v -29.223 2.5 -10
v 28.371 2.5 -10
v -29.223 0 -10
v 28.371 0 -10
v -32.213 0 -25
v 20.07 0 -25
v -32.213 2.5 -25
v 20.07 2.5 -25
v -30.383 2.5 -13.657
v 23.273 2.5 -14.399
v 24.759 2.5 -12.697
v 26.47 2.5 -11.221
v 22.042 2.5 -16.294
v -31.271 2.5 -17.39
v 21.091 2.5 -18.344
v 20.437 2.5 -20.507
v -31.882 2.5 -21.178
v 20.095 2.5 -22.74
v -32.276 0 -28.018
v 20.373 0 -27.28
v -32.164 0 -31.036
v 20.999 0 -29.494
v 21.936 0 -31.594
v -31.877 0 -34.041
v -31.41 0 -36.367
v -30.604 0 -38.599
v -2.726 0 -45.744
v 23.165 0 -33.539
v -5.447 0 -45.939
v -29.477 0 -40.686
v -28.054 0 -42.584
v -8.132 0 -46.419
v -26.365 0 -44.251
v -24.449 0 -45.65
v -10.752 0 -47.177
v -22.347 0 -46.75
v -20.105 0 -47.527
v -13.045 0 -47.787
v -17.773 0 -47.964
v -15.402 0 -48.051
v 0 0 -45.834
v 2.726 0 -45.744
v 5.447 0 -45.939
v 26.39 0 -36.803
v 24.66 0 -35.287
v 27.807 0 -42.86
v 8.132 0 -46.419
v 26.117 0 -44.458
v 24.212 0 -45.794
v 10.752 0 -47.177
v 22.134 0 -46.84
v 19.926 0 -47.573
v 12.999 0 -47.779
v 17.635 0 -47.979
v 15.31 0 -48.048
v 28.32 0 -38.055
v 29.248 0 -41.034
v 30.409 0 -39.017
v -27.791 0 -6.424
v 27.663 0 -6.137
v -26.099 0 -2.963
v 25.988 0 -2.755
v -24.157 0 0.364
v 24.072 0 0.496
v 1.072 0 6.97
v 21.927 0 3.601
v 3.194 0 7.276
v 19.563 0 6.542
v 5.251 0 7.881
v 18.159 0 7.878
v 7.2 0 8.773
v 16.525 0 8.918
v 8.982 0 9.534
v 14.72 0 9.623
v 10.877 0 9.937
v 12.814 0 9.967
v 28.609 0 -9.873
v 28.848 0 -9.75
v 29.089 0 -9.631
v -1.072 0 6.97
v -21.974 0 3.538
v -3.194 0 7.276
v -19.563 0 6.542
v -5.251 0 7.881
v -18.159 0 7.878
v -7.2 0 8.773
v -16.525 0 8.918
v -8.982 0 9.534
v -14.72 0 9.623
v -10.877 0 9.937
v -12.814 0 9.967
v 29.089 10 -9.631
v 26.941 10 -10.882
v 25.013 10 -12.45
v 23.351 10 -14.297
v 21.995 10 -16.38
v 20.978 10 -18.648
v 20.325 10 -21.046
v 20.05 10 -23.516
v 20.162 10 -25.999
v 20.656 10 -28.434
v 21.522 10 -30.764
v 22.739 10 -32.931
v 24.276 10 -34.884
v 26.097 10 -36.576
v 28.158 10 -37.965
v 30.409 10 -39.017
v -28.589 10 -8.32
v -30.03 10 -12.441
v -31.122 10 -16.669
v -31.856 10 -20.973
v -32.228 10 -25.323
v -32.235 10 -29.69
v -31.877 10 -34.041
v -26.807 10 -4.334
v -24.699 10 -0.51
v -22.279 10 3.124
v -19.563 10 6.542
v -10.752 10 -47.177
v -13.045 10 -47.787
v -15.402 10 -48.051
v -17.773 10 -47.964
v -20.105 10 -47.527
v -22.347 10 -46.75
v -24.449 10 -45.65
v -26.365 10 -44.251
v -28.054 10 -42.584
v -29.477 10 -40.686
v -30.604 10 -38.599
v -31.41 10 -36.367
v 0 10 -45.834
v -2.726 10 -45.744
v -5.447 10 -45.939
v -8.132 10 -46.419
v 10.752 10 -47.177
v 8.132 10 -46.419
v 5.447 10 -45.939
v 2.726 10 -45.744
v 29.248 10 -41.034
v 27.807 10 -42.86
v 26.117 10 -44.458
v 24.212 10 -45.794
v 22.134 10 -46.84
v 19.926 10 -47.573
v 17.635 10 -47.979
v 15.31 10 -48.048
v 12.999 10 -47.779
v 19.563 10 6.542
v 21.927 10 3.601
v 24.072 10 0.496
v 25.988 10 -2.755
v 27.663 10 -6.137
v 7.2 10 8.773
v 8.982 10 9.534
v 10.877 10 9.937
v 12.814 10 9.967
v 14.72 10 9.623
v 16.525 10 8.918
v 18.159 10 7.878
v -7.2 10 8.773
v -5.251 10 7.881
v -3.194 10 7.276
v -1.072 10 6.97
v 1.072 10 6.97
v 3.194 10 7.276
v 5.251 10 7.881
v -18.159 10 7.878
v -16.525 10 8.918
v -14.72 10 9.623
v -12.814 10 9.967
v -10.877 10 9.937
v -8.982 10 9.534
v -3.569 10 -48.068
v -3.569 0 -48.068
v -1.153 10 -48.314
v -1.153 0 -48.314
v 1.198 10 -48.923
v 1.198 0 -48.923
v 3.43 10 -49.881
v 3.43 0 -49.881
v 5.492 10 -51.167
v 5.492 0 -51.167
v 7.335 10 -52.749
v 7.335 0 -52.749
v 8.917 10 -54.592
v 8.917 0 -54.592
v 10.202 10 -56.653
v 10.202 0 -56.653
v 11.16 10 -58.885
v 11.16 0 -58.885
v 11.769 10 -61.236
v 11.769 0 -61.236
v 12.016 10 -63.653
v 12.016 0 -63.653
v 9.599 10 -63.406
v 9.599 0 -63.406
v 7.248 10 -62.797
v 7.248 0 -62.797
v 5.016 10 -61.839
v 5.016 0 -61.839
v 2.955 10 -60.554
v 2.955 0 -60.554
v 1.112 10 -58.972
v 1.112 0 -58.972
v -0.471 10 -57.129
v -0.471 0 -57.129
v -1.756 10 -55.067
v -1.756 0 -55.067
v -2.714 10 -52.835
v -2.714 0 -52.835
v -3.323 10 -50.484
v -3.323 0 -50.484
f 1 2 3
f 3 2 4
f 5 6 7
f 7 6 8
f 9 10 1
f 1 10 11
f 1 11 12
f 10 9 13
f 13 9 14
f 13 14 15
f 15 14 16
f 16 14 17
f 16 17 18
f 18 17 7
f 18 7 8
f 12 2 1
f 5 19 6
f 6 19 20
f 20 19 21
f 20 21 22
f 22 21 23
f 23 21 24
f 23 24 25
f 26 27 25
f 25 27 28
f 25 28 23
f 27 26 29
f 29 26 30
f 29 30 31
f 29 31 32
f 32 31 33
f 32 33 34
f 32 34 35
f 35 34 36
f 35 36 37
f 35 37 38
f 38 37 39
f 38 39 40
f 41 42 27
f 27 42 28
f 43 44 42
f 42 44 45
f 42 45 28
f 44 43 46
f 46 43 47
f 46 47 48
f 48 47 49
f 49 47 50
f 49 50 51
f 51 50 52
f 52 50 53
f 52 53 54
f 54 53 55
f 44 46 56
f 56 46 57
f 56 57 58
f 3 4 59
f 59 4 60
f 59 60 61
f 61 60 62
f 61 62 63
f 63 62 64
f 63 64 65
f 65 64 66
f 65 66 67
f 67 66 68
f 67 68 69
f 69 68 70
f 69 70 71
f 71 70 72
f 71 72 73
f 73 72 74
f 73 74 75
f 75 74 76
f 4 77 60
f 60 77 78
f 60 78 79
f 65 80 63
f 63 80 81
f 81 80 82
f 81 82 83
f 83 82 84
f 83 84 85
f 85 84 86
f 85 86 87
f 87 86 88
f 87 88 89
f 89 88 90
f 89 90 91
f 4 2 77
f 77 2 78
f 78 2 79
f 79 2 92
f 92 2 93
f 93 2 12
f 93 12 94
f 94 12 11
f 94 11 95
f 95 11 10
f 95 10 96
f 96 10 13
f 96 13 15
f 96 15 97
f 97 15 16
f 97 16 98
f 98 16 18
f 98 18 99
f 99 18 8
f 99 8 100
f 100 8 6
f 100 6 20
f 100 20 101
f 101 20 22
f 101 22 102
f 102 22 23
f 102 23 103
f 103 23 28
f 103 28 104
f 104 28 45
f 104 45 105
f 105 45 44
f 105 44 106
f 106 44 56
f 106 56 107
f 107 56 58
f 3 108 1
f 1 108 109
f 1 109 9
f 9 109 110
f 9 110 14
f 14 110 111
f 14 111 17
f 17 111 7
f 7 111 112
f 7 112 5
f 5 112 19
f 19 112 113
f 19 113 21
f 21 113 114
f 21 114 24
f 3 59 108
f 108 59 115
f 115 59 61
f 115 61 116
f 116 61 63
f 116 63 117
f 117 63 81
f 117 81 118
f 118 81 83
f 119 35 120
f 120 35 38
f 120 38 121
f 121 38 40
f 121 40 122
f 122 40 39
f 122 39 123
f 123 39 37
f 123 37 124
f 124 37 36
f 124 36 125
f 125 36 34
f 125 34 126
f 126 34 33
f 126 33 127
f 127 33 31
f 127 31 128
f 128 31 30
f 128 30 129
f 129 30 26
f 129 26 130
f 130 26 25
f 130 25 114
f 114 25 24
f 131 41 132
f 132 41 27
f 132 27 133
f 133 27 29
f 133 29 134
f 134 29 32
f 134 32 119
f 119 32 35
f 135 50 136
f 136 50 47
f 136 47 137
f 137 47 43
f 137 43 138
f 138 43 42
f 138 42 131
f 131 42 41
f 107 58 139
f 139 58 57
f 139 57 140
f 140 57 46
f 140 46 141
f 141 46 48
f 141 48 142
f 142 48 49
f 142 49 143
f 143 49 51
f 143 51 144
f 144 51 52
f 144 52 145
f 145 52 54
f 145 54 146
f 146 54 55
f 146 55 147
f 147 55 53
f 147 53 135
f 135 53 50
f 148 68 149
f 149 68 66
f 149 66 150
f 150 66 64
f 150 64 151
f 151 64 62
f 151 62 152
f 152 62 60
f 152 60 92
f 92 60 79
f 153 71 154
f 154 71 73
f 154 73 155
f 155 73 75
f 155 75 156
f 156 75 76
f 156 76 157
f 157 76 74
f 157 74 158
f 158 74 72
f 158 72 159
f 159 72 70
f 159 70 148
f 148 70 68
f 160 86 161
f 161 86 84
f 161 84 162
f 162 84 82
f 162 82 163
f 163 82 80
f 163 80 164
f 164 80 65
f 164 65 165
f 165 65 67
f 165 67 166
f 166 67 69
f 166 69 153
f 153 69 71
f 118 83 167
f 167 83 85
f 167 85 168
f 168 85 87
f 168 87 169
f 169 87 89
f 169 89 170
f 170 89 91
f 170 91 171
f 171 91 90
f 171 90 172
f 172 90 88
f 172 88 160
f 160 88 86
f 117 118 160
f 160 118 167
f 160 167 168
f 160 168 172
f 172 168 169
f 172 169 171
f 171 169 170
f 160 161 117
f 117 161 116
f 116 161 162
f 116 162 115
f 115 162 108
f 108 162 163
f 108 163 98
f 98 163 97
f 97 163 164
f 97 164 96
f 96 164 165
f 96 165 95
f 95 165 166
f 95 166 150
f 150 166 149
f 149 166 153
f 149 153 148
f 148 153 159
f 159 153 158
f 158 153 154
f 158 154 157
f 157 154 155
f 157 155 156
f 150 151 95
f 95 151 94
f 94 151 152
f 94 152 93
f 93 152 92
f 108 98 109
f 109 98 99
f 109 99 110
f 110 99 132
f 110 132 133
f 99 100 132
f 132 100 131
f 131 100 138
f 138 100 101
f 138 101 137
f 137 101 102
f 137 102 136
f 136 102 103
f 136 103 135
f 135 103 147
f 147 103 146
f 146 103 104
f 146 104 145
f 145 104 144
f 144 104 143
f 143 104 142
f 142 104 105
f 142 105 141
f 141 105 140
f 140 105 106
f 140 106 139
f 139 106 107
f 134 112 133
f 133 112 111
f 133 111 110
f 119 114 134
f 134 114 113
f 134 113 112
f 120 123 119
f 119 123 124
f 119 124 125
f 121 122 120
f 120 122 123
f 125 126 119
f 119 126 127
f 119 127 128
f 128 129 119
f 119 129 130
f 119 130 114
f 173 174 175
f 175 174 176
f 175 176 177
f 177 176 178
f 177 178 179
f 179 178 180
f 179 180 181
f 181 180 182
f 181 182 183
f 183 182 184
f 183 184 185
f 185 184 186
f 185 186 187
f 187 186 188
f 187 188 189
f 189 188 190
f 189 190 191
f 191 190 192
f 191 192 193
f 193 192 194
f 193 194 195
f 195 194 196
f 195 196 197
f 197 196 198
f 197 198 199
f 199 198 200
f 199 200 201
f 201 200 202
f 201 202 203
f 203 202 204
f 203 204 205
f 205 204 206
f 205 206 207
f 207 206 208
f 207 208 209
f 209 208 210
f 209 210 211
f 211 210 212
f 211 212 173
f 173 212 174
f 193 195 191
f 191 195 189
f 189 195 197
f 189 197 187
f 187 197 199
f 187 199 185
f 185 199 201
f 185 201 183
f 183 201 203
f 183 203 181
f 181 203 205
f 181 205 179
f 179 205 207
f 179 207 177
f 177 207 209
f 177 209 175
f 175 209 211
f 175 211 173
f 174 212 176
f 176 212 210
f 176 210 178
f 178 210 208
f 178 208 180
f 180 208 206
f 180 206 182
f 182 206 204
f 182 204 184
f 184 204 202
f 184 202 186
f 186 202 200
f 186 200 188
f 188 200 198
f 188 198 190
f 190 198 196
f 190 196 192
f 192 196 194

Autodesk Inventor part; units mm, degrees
ref_plane "YZ Plane" through (0, 0, 0) normal (1, 0, 0) x (0, 1, 0)
ref_plane "XZ Plane" through (0, 0, 0) normal (0, 1, 0) x (-1, 0, 0)
ref_plane "XY Plane" through (0, 0, 0) normal (0, 0, 1) x (1, 0, 0)
sketch "Sketch2" plane through (0, 0, 0) normal (0, 1, 0) x (-1, 0, 0)
  line L0 (0, 0) -> (-15.380673, 0) construction
  line L1 (0, 12) -> (0, -86.646063) construction
  circle A0 centre (0, 0) radius 2
  circle A1 centre (-12, 0) radius 10
  circle A2 centre (-23.313708, -11.313708) radius 6
  circle A3 centre (-16, -32.062435) radius 16
  line L2 (-16, -48.062435) -> (0, -48.062435)
  line L3 (-12, 10) -> (0, 10)
  line L4 (-12, 0) -> (-23.313708, -11.313708)
  arc A4 (-19.562803, 6.542477) -> (-31.877188, -34.041046) centre (19.892258, -27.589553) ccw
  line L5 (0, 0) -> (15.380673, 0) construction
  circle A5 centre (0, 0) radius 2
  circle A6 centre (12, 0) radius 10
  circle A7 centre (23.313708, -11.313708) radius 6
  circle A8 centre (16, -32.062435) radius 16
  line L6 (16, -48.062435) -> (0, -48.062435)
  line L7 (12, 10) -> (0, 10)
  line L8 (12, 0) -> (23.313708, -11.313708)
  arc A9 (31.877188, -34.041046) -> (19.562803, 6.542477) centre (-19.892258, -27.589553) ccw
  arc A10 (10.751933, -47.177256) -> (0, -45.834116) centre (2.223823, -71.738838) ccw
  arc A11 (0, 6.931712) -> (7.2, 8.772685) centre (0, 21.931712) ccw
  arc A12 (0, -45.834116) -> (-10.751933, -47.177256) centre (-2.223823, -71.738838) ccw
  arc A13 (-7.2, 8.772685) -> (0, 6.931712) centre (0, 21.931712) ccw
  line L9 (-23.313708, -11.313708) -> (-58.366086, -46.366086)
  line L10 (-12, 0) -> (-38.351414, 26.351414)
  line L11 (10.154637, -70.237898) -> (-38.67512, -21.408141)
  circle A14 centre (-36.041631, -24.041631) radius 16
  circle A15 centre (-12.425271, -47.65799) radius 16
  circle A16 centre (3.979174, -64.062435) radius 16
  point P0 (3.569483, -48.067681)
  point P1 (-12.01558, -63.652744)
  point P2 (-7.2, 8.772685)
  point P3 (-29.089266, -9.631057)
  point P4 (-30.409272, -39.017496)
  point P5 (-10.751933, -47.177256)
  dimension "d0" = 4
  dimension "d1" = 20
  dimension "d2" = 12
  dimension "d3" = 32
  dimension "d4" = 135
  dimension "d6" = 26
  dimension "d7" = 15
  dimension "d8" = 90
  dimension "d12" = 34
  dimension "d13" = 32
  dimension "d14" = 32
  dimension "d15" = 32
sketch "Sketch2 outline for Extrusion1" plane through (0, 0, 0) normal (0, 1, 0) x (-1, 0, 0)
  arc A0 (3.569483, -48.067681) -> (-12.01558, -63.652744) centre (3.979174, -64.062435) ccw
  arc A1 (-12.01558, -63.652744) -> (3.569483, -48.067681) centre (-12.425271, -47.65799) ccw
  arc A2 (31.877188, -34.041046) -> (19.562803, 6.542477) centre (-19.892258, -27.589553) ccw
  arc A3 (19.562803, 6.542477) -> (7.2, 8.772685) centre (12, 0) ccw
  arc A4 (7.2, 8.772685) -> (-7.2, 8.772685) centre (0, 21.931712) cw
  arc A5 (-7.2, 8.772685) -> (-19.562803, 6.542477) centre (-12, 0) ccw
  arc A6 (-19.562803, 6.542477) -> (-29.089266, -9.631057) centre (19.892258, -27.589553) ccw
  arc A7 (-29.089266, -9.631057) -> (-30.409272, -39.017496) centre (-36.041631, -24.041631) cw
  arc A8 (-30.409272, -39.017496) -> (-10.751933, -47.177256) centre (-16, -32.062435) ccw
  arc A9 (-10.751933, -47.177256) -> (0, -45.834116) centre (-2.223823, -71.738838) cw
  arc A10 (0, -45.834116) -> (10.751933, -47.177256) centre (2.223823, -71.738838) cw
  arc A11 (10.751933, -47.177256) -> (31.877188, -34.041046) centre (16, -32.062435) ccw
extrude "Extrusion1" add sketch "Sketch2 outline for Extrusion1" along normal blind 10
sketch "Sketch3" plane through (0, 0, 0) normal (0, -1, 0) x (1, 0, 0)
  line L0 (-51.381118, -10) -> (56.260395, -10)
  line L1 (56.260395, -10) -> (56.260395, -25)
  line L2 (56.260395, -25) -> (-51.381118, -25)
  line L3 (-51.381118, -25) -> (-51.381118, -10)
  point P0 (0, 0)
  dimension "d22" = 15
  dimension "d23" = 10
extrude "Extrusion2" cut sketch "Sketch3" against normal blind 2.5
properties part number "Apple_logo_white"
